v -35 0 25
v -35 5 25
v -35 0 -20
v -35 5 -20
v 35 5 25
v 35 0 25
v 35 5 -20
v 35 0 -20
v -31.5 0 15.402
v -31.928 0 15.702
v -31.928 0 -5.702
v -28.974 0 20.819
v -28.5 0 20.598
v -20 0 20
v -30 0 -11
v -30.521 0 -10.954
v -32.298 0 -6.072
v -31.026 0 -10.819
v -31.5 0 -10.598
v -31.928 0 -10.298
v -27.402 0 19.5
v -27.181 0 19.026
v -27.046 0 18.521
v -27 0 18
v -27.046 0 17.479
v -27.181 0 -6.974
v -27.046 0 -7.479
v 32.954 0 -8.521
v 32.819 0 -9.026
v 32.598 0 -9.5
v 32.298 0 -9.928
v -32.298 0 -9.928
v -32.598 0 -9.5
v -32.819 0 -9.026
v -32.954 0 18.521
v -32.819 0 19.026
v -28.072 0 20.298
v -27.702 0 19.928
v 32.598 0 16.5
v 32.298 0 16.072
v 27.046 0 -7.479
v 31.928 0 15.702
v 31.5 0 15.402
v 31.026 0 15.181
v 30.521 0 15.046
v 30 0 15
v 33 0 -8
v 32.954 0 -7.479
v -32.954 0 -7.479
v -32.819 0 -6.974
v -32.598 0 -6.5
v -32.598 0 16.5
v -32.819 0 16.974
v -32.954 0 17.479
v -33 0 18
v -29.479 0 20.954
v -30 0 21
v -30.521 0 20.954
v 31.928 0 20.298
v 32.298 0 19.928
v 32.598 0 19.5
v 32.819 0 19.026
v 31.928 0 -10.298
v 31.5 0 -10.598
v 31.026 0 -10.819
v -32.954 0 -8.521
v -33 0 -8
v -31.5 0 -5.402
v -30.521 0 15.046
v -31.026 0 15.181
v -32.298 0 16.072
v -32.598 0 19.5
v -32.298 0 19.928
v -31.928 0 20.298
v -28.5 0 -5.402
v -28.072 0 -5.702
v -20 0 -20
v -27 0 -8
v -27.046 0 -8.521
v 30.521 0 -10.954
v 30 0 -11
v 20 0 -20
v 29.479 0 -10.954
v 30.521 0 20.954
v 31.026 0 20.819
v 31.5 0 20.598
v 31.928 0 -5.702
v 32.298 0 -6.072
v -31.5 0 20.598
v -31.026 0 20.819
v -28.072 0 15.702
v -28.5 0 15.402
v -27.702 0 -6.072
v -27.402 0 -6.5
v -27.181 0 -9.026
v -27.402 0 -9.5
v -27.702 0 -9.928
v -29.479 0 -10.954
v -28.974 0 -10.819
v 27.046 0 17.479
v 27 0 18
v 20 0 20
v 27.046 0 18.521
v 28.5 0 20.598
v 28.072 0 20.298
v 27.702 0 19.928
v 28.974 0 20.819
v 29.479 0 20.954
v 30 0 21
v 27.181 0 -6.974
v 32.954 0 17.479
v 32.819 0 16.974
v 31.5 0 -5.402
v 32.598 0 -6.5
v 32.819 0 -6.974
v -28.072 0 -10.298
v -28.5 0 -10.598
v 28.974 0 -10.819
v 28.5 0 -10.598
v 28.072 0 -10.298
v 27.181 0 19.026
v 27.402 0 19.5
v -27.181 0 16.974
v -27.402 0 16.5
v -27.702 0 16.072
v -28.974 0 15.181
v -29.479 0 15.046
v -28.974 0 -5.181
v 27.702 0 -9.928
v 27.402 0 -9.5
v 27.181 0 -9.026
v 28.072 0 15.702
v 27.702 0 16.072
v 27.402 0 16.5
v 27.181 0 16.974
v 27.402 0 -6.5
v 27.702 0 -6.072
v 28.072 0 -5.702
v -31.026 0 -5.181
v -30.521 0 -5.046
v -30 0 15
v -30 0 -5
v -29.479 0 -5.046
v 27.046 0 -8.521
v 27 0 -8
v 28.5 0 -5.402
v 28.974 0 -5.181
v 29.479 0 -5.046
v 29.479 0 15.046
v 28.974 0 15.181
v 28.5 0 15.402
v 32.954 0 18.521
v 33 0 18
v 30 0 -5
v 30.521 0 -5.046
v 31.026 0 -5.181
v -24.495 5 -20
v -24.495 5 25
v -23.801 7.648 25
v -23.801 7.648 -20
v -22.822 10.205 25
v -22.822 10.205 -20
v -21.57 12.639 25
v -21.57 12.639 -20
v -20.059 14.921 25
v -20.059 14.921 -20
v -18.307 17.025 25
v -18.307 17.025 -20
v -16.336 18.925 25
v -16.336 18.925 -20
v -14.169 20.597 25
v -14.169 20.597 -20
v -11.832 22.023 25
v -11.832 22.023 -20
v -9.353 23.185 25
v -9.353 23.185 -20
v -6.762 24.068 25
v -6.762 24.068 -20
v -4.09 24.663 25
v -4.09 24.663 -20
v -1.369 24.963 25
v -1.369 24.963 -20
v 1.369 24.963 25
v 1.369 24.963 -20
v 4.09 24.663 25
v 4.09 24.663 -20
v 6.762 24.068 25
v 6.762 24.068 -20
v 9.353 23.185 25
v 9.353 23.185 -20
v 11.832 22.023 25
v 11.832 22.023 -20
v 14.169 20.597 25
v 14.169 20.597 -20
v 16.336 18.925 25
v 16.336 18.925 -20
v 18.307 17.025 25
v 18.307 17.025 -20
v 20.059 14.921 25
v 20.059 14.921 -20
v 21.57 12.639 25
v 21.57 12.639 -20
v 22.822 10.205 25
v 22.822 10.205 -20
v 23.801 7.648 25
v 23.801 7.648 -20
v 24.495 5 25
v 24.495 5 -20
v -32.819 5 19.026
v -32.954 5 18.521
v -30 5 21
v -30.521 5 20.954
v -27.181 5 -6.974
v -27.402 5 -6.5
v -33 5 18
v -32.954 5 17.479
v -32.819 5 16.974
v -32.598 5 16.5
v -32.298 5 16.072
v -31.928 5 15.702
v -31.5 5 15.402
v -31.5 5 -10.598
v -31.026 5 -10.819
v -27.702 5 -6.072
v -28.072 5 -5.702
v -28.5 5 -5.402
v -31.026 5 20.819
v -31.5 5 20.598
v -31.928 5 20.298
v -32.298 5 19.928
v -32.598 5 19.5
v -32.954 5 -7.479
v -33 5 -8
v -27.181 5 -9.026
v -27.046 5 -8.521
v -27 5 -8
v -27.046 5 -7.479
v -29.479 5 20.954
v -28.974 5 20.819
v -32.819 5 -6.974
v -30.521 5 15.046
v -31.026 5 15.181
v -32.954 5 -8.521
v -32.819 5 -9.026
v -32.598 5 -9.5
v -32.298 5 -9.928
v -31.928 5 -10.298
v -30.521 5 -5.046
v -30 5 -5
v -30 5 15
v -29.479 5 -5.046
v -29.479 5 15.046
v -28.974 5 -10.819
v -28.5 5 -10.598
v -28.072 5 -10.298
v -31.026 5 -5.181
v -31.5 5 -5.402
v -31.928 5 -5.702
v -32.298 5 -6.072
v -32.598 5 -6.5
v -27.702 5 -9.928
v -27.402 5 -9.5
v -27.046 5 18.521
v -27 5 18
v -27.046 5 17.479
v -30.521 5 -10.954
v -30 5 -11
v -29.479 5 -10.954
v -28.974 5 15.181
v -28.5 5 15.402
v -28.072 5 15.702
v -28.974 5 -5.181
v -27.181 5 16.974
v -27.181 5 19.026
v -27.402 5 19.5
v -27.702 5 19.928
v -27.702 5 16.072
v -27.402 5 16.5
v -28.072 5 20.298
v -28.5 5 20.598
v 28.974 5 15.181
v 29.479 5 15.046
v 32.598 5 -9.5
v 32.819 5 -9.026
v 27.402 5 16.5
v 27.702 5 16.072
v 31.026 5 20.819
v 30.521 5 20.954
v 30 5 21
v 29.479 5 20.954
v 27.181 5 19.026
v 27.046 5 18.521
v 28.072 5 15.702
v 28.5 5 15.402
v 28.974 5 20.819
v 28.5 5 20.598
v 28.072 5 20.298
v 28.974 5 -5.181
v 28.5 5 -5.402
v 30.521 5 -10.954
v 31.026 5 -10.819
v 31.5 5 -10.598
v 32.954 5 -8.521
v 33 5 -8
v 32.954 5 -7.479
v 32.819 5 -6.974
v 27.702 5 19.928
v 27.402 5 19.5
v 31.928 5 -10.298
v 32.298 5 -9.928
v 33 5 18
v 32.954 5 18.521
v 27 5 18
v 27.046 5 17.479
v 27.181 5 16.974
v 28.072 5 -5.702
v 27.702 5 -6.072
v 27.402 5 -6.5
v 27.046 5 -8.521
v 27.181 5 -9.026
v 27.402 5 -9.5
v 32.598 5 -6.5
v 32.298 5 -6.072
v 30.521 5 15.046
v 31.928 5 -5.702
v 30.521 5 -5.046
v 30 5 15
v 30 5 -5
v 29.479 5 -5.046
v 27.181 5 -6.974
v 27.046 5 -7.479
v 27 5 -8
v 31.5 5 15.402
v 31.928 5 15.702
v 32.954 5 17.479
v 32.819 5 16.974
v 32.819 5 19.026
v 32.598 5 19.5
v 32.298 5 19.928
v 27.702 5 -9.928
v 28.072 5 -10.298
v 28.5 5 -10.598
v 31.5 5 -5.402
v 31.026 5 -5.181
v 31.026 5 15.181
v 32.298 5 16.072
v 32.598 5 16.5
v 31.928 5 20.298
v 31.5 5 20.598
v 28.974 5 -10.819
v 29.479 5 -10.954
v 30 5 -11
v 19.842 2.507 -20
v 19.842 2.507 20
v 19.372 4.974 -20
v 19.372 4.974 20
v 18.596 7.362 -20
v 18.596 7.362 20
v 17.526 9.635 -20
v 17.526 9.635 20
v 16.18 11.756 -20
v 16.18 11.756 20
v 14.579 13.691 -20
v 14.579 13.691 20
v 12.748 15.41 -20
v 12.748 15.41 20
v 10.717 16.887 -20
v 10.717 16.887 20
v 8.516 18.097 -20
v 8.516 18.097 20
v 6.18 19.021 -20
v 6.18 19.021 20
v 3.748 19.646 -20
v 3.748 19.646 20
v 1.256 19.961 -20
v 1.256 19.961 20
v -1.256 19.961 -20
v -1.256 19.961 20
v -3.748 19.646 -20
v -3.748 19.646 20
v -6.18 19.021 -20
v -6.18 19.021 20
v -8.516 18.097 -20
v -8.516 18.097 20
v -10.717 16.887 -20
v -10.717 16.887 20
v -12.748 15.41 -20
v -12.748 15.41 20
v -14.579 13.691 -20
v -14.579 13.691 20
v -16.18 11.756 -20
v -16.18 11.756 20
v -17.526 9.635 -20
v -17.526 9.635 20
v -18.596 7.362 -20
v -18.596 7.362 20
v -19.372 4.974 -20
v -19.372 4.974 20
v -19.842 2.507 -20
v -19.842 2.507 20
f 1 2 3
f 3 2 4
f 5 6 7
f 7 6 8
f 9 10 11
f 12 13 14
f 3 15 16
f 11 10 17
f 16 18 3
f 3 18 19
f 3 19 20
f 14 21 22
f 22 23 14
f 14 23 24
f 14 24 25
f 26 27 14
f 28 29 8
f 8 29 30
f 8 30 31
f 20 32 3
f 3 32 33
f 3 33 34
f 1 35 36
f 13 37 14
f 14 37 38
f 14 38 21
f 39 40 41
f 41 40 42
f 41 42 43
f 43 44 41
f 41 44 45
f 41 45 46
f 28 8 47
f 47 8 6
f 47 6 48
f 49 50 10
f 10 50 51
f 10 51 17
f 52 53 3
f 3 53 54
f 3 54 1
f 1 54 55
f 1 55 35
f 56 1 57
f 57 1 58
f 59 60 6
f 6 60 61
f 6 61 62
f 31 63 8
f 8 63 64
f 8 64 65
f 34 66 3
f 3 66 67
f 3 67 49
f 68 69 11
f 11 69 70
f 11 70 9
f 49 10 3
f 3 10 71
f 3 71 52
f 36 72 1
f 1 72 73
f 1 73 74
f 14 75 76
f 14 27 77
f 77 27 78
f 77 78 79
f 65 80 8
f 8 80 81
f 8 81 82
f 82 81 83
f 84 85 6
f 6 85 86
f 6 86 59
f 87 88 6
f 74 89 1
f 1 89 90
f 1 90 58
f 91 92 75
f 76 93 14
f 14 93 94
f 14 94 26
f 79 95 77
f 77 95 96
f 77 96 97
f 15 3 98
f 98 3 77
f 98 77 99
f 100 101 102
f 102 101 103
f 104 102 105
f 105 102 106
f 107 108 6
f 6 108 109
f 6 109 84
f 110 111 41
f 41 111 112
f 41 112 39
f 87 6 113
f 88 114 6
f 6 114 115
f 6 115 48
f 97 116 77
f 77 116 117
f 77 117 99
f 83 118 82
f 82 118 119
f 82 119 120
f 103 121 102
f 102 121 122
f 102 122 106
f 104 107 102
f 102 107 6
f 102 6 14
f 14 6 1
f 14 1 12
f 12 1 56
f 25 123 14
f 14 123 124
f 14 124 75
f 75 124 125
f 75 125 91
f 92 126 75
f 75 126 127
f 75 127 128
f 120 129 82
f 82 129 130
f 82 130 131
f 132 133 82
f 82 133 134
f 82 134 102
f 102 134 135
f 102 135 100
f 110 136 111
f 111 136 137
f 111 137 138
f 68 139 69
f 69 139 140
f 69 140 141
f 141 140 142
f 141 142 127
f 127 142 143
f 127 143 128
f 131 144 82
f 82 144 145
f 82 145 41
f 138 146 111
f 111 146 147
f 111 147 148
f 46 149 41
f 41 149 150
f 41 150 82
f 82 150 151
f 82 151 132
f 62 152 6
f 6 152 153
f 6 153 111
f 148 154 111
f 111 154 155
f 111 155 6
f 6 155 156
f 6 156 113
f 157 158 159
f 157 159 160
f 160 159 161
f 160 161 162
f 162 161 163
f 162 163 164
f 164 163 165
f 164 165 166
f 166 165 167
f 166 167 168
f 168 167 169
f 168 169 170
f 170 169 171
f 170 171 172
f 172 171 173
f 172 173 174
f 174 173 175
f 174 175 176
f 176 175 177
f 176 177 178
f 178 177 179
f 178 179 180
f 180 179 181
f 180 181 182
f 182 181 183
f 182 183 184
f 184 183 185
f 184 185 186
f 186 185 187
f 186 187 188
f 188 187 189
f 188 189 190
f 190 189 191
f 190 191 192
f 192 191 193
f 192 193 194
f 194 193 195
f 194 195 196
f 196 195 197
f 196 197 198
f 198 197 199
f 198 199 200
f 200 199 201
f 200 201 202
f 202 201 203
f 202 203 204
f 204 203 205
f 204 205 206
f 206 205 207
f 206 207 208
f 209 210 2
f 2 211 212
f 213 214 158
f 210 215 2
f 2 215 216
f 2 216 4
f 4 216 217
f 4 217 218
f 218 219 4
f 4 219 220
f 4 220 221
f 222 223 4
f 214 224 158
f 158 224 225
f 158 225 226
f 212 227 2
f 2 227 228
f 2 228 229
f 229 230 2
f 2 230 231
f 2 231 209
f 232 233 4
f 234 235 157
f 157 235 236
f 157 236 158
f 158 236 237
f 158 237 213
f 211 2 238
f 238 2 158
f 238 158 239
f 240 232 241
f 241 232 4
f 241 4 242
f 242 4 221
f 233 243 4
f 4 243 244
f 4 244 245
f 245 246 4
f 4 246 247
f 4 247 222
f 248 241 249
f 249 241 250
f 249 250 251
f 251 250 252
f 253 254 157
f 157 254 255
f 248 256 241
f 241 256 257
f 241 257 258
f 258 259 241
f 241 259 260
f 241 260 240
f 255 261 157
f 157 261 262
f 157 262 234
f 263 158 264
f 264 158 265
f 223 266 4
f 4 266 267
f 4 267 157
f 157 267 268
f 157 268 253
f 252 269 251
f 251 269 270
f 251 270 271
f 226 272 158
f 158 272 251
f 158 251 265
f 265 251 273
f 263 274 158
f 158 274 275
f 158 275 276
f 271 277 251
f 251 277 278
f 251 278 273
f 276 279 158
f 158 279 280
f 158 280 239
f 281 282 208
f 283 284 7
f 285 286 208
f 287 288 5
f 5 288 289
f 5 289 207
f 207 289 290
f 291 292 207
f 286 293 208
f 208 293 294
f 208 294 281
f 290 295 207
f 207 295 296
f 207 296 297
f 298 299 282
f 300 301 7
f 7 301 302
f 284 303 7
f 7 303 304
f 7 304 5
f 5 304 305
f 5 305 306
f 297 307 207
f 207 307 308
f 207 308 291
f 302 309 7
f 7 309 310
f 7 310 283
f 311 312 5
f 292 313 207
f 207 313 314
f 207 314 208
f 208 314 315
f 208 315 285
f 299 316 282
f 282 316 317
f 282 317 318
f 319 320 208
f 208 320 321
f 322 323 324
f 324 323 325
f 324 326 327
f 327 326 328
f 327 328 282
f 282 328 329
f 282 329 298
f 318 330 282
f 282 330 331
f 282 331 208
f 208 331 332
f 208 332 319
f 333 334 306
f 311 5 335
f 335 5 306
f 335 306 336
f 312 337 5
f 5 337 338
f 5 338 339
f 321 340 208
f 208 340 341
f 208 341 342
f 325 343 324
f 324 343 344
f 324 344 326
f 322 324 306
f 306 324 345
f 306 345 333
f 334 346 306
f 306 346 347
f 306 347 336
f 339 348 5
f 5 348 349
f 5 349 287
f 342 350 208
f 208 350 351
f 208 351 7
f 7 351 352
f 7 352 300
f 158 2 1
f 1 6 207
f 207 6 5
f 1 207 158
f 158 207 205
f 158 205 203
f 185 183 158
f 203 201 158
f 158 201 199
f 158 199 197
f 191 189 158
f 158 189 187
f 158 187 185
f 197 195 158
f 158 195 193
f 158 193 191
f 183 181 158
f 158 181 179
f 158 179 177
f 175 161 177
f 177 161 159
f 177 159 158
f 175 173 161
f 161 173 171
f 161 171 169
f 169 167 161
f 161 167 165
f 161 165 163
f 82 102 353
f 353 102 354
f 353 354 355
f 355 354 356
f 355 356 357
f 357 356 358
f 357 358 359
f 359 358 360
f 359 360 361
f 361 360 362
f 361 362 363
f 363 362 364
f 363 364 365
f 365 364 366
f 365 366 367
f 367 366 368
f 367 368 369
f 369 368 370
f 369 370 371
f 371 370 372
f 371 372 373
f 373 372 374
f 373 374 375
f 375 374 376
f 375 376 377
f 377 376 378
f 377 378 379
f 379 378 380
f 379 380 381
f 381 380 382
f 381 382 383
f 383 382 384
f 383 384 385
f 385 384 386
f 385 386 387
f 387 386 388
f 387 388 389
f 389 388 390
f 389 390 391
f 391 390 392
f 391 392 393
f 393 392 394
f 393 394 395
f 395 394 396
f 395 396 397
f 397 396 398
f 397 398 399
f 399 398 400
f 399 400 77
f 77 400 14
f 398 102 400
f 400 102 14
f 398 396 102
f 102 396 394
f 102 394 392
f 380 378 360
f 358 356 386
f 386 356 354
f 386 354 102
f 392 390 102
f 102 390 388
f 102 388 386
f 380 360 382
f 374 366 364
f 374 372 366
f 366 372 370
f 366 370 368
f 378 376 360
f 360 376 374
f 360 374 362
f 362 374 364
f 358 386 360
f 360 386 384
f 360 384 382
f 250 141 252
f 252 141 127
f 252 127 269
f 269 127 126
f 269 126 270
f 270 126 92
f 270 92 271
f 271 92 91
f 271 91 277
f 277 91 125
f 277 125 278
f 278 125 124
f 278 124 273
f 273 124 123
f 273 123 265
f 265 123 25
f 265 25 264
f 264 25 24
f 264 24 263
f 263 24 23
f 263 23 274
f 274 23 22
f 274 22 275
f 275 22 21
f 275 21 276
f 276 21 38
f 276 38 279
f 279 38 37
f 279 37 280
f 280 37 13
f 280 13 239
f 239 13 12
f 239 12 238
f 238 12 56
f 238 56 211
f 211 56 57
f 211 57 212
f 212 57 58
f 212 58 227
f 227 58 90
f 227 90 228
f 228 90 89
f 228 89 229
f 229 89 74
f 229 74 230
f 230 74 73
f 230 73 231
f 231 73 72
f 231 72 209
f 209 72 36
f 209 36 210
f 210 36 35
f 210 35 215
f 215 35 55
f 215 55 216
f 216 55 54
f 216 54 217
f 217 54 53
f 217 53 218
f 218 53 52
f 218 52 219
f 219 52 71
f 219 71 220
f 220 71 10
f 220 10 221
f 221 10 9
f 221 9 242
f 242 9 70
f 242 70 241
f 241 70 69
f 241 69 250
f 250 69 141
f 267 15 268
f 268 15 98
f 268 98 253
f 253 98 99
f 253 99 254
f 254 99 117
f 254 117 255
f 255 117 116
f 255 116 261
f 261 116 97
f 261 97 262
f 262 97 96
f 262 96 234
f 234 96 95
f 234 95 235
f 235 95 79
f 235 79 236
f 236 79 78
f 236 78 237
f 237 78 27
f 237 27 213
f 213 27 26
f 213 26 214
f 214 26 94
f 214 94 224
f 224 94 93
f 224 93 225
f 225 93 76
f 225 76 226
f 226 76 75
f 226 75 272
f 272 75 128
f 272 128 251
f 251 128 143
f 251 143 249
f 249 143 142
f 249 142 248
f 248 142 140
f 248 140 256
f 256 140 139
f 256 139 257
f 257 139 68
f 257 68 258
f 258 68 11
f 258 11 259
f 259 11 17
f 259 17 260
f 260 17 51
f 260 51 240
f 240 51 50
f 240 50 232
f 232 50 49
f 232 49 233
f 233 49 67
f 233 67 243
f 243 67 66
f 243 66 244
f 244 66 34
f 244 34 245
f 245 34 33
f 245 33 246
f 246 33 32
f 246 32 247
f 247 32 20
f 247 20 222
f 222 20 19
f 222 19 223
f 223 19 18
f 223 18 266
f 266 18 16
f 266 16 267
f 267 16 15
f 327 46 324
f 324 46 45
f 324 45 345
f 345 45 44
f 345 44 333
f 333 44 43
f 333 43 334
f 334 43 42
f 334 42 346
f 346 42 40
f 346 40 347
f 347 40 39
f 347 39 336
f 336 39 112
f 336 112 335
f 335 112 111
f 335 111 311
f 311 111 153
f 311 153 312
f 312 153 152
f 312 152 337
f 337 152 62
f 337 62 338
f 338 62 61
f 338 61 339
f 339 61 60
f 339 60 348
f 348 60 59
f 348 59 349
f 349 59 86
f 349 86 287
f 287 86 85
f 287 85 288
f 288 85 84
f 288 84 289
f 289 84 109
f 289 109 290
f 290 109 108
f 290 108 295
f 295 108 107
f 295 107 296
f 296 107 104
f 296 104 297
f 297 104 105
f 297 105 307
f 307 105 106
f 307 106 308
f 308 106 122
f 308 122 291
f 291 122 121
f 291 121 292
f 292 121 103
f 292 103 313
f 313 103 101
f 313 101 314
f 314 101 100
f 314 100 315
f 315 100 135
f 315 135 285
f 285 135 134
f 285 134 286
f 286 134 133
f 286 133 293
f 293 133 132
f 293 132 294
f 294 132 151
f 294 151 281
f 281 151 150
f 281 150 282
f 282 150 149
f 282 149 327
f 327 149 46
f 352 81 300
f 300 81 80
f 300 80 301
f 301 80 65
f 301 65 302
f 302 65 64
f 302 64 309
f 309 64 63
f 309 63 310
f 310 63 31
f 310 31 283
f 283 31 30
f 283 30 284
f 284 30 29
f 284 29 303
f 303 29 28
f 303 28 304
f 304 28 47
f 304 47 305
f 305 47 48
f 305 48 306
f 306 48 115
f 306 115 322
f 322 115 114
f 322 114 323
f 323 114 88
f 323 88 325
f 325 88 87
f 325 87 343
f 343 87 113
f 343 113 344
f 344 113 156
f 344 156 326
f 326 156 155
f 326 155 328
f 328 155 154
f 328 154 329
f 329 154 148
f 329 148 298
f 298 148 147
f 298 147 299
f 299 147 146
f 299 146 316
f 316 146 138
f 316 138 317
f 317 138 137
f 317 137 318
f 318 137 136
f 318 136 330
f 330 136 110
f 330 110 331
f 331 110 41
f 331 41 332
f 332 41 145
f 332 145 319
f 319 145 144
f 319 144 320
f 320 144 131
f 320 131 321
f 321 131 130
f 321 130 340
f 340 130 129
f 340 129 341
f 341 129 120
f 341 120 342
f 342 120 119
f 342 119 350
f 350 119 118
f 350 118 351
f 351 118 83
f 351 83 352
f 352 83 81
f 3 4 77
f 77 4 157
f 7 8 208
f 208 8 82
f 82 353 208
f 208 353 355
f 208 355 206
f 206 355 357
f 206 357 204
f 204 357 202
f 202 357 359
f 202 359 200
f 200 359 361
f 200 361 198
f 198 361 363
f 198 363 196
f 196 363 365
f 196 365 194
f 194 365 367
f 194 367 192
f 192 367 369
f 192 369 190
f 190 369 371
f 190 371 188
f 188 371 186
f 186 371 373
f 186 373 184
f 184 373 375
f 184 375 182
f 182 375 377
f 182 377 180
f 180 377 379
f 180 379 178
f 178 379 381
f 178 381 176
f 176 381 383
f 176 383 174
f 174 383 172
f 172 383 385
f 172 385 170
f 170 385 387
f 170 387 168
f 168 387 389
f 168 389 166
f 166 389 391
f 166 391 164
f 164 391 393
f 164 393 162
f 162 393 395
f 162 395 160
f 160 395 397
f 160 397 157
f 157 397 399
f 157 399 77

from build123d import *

# Parameters (mm, degrees)
SKETCH1_W                 = 70
SKETCH1_H                 = 50
BOSS_EXTRUDE1_DEPTH       = 30
CAVITY1_START             = -20
CAVITY1_DEPTH             = 40
CAVITY1_START_2           = -25
CAVITY1_2_DEPTH           = 5
CUT_EXTRUDE1_DEPTH        = 65.420493634
CUT_EXTRUDE1_DEPTH_BACK   = 65.420493634
F_6_0MM_DOWEL_HOLE1_D     = 6
F_6_0MM_DOWEL_HOLE1_DEPTH = 10
F_6_0MM_DOWEL_HOLE1_TIP   = 1.802581857
CUT_EXTRUDE3_DEPTH        = 5


# Read off the part's stored shape, not the designer's step: Cavity1
with BuildPart() as part:
    # Sketch1 → Boss-Extrude1 (new body)
    with BuildSketch(Plane(origin=(0, 0, 0), x_dir=(1, 0, 0), z_dir=(0, 1, 0))):
        Rectangle(SKETCH1_W, SKETCH1_H)
    extrude(amount=BOSS_EXTRUDE1_DEPTH)

    # Cavity1 outline → Cavity1 (cut)
    with BuildSketch(Plane.XY.offset(CAVITY1_START)):
        with BuildLine():
            ThreePointArc((20, 0), (0, 20), (-20, 0))
            Line((-20, 0), (20, 0))
        make_face()
    extrude(amount=CAVITY1_DEPTH, mode=Mode.SUBTRACT)

    # Cavity1 2 outline → Cavity1 2 (cut)
    with BuildSketch(Plane.XY.offset(CAVITY1_START_2)):
        with BuildLine():
            Line((-10, 0), (10, 0))
            ThreePointArc((10, 0), (0, 10), (-10, 0))
        make_face()
    extrude(amount=CAVITY1_2_DEPTH, mode=Mode.SUBTRACT)

    # Sketch2 → Cut-Extrude1 (cut, two sides: drawn at the far end of the back side and taken through both)
    with BuildSketch(Plane(origin=(0, 0, 20), x_dir=(-1, 0, 0), z_dir=(0, 0, -1)).offset(-CUT_EXTRUDE1_DEPTH_BACK)):
        with BuildLine():
            Line((-35, 30), (-35, 5))
            Line((-35, 5), (-24.494897428, 5))
            ThreePointArc((-24.494897428, 5), (0, 25), (24.494897428, 5))
            Line((24.494897428, 5), (35, 5))
            Line((35, 5), (35, 30))
            Line((35, 30), (-35, 30))
        make_face()
    extrude(amount=CUT_EXTRUDE1_DEPTH + CUT_EXTRUDE1_DEPTH_BACK, mode=Mode.SUBTRACT)

    # Ø6.0mm Dowel Hole1
    with Locations(Plane(origin=(0, 0, 0), x_dir=(-1, 0, 0), z_dir=(0, -1, 0))):
        with Locations((-30, 8), (-30, -18), (30, 8), (30, -18)):
            Hole(F_6_0MM_DOWEL_HOLE1_D / 2, depth=F_6_0MM_DOWEL_HOLE1_DEPTH)
            with Locations((0, 0, -(F_6_0MM_DOWEL_HOLE1_DEPTH + F_6_0MM_DOWEL_HOLE1_TIP / 2))):  # 118° drill point
                Cone(0, F_6_0MM_DOWEL_HOLE1_D / 2, F_6_0MM_DOWEL_HOLE1_TIP, mode=Mode.SUBTRACT)

    # Sketch6 → Cut-Extrude3 (cut)
    with BuildSketch(Plane(origin=(0, 0, -25), x_dir=(-1, 0, 0), z_dir=(0, 0, -1))):
        with BuildLine():
            Line((35, 5), (24.494897428, 5))
            ThreePointArc((24.494897428, 5), (0, 25), (-24.494897428, 5))
            Line((-24.494897428, 5), (-35, 5))
            Line((-35, 5), (-35, 0))
            Line((-35, 0), (-10, 0))
            ThreePointArc((-10, 0), (0, 10), (10, 0))
            Line((10, 0), (35, 0))
            Line((35, 0), (35, 5))
        make_face()
    extrude(amount=-CUT_EXTRUDE3_DEPTH, mode=Mode.SUBTRACT)


solid = part.part
